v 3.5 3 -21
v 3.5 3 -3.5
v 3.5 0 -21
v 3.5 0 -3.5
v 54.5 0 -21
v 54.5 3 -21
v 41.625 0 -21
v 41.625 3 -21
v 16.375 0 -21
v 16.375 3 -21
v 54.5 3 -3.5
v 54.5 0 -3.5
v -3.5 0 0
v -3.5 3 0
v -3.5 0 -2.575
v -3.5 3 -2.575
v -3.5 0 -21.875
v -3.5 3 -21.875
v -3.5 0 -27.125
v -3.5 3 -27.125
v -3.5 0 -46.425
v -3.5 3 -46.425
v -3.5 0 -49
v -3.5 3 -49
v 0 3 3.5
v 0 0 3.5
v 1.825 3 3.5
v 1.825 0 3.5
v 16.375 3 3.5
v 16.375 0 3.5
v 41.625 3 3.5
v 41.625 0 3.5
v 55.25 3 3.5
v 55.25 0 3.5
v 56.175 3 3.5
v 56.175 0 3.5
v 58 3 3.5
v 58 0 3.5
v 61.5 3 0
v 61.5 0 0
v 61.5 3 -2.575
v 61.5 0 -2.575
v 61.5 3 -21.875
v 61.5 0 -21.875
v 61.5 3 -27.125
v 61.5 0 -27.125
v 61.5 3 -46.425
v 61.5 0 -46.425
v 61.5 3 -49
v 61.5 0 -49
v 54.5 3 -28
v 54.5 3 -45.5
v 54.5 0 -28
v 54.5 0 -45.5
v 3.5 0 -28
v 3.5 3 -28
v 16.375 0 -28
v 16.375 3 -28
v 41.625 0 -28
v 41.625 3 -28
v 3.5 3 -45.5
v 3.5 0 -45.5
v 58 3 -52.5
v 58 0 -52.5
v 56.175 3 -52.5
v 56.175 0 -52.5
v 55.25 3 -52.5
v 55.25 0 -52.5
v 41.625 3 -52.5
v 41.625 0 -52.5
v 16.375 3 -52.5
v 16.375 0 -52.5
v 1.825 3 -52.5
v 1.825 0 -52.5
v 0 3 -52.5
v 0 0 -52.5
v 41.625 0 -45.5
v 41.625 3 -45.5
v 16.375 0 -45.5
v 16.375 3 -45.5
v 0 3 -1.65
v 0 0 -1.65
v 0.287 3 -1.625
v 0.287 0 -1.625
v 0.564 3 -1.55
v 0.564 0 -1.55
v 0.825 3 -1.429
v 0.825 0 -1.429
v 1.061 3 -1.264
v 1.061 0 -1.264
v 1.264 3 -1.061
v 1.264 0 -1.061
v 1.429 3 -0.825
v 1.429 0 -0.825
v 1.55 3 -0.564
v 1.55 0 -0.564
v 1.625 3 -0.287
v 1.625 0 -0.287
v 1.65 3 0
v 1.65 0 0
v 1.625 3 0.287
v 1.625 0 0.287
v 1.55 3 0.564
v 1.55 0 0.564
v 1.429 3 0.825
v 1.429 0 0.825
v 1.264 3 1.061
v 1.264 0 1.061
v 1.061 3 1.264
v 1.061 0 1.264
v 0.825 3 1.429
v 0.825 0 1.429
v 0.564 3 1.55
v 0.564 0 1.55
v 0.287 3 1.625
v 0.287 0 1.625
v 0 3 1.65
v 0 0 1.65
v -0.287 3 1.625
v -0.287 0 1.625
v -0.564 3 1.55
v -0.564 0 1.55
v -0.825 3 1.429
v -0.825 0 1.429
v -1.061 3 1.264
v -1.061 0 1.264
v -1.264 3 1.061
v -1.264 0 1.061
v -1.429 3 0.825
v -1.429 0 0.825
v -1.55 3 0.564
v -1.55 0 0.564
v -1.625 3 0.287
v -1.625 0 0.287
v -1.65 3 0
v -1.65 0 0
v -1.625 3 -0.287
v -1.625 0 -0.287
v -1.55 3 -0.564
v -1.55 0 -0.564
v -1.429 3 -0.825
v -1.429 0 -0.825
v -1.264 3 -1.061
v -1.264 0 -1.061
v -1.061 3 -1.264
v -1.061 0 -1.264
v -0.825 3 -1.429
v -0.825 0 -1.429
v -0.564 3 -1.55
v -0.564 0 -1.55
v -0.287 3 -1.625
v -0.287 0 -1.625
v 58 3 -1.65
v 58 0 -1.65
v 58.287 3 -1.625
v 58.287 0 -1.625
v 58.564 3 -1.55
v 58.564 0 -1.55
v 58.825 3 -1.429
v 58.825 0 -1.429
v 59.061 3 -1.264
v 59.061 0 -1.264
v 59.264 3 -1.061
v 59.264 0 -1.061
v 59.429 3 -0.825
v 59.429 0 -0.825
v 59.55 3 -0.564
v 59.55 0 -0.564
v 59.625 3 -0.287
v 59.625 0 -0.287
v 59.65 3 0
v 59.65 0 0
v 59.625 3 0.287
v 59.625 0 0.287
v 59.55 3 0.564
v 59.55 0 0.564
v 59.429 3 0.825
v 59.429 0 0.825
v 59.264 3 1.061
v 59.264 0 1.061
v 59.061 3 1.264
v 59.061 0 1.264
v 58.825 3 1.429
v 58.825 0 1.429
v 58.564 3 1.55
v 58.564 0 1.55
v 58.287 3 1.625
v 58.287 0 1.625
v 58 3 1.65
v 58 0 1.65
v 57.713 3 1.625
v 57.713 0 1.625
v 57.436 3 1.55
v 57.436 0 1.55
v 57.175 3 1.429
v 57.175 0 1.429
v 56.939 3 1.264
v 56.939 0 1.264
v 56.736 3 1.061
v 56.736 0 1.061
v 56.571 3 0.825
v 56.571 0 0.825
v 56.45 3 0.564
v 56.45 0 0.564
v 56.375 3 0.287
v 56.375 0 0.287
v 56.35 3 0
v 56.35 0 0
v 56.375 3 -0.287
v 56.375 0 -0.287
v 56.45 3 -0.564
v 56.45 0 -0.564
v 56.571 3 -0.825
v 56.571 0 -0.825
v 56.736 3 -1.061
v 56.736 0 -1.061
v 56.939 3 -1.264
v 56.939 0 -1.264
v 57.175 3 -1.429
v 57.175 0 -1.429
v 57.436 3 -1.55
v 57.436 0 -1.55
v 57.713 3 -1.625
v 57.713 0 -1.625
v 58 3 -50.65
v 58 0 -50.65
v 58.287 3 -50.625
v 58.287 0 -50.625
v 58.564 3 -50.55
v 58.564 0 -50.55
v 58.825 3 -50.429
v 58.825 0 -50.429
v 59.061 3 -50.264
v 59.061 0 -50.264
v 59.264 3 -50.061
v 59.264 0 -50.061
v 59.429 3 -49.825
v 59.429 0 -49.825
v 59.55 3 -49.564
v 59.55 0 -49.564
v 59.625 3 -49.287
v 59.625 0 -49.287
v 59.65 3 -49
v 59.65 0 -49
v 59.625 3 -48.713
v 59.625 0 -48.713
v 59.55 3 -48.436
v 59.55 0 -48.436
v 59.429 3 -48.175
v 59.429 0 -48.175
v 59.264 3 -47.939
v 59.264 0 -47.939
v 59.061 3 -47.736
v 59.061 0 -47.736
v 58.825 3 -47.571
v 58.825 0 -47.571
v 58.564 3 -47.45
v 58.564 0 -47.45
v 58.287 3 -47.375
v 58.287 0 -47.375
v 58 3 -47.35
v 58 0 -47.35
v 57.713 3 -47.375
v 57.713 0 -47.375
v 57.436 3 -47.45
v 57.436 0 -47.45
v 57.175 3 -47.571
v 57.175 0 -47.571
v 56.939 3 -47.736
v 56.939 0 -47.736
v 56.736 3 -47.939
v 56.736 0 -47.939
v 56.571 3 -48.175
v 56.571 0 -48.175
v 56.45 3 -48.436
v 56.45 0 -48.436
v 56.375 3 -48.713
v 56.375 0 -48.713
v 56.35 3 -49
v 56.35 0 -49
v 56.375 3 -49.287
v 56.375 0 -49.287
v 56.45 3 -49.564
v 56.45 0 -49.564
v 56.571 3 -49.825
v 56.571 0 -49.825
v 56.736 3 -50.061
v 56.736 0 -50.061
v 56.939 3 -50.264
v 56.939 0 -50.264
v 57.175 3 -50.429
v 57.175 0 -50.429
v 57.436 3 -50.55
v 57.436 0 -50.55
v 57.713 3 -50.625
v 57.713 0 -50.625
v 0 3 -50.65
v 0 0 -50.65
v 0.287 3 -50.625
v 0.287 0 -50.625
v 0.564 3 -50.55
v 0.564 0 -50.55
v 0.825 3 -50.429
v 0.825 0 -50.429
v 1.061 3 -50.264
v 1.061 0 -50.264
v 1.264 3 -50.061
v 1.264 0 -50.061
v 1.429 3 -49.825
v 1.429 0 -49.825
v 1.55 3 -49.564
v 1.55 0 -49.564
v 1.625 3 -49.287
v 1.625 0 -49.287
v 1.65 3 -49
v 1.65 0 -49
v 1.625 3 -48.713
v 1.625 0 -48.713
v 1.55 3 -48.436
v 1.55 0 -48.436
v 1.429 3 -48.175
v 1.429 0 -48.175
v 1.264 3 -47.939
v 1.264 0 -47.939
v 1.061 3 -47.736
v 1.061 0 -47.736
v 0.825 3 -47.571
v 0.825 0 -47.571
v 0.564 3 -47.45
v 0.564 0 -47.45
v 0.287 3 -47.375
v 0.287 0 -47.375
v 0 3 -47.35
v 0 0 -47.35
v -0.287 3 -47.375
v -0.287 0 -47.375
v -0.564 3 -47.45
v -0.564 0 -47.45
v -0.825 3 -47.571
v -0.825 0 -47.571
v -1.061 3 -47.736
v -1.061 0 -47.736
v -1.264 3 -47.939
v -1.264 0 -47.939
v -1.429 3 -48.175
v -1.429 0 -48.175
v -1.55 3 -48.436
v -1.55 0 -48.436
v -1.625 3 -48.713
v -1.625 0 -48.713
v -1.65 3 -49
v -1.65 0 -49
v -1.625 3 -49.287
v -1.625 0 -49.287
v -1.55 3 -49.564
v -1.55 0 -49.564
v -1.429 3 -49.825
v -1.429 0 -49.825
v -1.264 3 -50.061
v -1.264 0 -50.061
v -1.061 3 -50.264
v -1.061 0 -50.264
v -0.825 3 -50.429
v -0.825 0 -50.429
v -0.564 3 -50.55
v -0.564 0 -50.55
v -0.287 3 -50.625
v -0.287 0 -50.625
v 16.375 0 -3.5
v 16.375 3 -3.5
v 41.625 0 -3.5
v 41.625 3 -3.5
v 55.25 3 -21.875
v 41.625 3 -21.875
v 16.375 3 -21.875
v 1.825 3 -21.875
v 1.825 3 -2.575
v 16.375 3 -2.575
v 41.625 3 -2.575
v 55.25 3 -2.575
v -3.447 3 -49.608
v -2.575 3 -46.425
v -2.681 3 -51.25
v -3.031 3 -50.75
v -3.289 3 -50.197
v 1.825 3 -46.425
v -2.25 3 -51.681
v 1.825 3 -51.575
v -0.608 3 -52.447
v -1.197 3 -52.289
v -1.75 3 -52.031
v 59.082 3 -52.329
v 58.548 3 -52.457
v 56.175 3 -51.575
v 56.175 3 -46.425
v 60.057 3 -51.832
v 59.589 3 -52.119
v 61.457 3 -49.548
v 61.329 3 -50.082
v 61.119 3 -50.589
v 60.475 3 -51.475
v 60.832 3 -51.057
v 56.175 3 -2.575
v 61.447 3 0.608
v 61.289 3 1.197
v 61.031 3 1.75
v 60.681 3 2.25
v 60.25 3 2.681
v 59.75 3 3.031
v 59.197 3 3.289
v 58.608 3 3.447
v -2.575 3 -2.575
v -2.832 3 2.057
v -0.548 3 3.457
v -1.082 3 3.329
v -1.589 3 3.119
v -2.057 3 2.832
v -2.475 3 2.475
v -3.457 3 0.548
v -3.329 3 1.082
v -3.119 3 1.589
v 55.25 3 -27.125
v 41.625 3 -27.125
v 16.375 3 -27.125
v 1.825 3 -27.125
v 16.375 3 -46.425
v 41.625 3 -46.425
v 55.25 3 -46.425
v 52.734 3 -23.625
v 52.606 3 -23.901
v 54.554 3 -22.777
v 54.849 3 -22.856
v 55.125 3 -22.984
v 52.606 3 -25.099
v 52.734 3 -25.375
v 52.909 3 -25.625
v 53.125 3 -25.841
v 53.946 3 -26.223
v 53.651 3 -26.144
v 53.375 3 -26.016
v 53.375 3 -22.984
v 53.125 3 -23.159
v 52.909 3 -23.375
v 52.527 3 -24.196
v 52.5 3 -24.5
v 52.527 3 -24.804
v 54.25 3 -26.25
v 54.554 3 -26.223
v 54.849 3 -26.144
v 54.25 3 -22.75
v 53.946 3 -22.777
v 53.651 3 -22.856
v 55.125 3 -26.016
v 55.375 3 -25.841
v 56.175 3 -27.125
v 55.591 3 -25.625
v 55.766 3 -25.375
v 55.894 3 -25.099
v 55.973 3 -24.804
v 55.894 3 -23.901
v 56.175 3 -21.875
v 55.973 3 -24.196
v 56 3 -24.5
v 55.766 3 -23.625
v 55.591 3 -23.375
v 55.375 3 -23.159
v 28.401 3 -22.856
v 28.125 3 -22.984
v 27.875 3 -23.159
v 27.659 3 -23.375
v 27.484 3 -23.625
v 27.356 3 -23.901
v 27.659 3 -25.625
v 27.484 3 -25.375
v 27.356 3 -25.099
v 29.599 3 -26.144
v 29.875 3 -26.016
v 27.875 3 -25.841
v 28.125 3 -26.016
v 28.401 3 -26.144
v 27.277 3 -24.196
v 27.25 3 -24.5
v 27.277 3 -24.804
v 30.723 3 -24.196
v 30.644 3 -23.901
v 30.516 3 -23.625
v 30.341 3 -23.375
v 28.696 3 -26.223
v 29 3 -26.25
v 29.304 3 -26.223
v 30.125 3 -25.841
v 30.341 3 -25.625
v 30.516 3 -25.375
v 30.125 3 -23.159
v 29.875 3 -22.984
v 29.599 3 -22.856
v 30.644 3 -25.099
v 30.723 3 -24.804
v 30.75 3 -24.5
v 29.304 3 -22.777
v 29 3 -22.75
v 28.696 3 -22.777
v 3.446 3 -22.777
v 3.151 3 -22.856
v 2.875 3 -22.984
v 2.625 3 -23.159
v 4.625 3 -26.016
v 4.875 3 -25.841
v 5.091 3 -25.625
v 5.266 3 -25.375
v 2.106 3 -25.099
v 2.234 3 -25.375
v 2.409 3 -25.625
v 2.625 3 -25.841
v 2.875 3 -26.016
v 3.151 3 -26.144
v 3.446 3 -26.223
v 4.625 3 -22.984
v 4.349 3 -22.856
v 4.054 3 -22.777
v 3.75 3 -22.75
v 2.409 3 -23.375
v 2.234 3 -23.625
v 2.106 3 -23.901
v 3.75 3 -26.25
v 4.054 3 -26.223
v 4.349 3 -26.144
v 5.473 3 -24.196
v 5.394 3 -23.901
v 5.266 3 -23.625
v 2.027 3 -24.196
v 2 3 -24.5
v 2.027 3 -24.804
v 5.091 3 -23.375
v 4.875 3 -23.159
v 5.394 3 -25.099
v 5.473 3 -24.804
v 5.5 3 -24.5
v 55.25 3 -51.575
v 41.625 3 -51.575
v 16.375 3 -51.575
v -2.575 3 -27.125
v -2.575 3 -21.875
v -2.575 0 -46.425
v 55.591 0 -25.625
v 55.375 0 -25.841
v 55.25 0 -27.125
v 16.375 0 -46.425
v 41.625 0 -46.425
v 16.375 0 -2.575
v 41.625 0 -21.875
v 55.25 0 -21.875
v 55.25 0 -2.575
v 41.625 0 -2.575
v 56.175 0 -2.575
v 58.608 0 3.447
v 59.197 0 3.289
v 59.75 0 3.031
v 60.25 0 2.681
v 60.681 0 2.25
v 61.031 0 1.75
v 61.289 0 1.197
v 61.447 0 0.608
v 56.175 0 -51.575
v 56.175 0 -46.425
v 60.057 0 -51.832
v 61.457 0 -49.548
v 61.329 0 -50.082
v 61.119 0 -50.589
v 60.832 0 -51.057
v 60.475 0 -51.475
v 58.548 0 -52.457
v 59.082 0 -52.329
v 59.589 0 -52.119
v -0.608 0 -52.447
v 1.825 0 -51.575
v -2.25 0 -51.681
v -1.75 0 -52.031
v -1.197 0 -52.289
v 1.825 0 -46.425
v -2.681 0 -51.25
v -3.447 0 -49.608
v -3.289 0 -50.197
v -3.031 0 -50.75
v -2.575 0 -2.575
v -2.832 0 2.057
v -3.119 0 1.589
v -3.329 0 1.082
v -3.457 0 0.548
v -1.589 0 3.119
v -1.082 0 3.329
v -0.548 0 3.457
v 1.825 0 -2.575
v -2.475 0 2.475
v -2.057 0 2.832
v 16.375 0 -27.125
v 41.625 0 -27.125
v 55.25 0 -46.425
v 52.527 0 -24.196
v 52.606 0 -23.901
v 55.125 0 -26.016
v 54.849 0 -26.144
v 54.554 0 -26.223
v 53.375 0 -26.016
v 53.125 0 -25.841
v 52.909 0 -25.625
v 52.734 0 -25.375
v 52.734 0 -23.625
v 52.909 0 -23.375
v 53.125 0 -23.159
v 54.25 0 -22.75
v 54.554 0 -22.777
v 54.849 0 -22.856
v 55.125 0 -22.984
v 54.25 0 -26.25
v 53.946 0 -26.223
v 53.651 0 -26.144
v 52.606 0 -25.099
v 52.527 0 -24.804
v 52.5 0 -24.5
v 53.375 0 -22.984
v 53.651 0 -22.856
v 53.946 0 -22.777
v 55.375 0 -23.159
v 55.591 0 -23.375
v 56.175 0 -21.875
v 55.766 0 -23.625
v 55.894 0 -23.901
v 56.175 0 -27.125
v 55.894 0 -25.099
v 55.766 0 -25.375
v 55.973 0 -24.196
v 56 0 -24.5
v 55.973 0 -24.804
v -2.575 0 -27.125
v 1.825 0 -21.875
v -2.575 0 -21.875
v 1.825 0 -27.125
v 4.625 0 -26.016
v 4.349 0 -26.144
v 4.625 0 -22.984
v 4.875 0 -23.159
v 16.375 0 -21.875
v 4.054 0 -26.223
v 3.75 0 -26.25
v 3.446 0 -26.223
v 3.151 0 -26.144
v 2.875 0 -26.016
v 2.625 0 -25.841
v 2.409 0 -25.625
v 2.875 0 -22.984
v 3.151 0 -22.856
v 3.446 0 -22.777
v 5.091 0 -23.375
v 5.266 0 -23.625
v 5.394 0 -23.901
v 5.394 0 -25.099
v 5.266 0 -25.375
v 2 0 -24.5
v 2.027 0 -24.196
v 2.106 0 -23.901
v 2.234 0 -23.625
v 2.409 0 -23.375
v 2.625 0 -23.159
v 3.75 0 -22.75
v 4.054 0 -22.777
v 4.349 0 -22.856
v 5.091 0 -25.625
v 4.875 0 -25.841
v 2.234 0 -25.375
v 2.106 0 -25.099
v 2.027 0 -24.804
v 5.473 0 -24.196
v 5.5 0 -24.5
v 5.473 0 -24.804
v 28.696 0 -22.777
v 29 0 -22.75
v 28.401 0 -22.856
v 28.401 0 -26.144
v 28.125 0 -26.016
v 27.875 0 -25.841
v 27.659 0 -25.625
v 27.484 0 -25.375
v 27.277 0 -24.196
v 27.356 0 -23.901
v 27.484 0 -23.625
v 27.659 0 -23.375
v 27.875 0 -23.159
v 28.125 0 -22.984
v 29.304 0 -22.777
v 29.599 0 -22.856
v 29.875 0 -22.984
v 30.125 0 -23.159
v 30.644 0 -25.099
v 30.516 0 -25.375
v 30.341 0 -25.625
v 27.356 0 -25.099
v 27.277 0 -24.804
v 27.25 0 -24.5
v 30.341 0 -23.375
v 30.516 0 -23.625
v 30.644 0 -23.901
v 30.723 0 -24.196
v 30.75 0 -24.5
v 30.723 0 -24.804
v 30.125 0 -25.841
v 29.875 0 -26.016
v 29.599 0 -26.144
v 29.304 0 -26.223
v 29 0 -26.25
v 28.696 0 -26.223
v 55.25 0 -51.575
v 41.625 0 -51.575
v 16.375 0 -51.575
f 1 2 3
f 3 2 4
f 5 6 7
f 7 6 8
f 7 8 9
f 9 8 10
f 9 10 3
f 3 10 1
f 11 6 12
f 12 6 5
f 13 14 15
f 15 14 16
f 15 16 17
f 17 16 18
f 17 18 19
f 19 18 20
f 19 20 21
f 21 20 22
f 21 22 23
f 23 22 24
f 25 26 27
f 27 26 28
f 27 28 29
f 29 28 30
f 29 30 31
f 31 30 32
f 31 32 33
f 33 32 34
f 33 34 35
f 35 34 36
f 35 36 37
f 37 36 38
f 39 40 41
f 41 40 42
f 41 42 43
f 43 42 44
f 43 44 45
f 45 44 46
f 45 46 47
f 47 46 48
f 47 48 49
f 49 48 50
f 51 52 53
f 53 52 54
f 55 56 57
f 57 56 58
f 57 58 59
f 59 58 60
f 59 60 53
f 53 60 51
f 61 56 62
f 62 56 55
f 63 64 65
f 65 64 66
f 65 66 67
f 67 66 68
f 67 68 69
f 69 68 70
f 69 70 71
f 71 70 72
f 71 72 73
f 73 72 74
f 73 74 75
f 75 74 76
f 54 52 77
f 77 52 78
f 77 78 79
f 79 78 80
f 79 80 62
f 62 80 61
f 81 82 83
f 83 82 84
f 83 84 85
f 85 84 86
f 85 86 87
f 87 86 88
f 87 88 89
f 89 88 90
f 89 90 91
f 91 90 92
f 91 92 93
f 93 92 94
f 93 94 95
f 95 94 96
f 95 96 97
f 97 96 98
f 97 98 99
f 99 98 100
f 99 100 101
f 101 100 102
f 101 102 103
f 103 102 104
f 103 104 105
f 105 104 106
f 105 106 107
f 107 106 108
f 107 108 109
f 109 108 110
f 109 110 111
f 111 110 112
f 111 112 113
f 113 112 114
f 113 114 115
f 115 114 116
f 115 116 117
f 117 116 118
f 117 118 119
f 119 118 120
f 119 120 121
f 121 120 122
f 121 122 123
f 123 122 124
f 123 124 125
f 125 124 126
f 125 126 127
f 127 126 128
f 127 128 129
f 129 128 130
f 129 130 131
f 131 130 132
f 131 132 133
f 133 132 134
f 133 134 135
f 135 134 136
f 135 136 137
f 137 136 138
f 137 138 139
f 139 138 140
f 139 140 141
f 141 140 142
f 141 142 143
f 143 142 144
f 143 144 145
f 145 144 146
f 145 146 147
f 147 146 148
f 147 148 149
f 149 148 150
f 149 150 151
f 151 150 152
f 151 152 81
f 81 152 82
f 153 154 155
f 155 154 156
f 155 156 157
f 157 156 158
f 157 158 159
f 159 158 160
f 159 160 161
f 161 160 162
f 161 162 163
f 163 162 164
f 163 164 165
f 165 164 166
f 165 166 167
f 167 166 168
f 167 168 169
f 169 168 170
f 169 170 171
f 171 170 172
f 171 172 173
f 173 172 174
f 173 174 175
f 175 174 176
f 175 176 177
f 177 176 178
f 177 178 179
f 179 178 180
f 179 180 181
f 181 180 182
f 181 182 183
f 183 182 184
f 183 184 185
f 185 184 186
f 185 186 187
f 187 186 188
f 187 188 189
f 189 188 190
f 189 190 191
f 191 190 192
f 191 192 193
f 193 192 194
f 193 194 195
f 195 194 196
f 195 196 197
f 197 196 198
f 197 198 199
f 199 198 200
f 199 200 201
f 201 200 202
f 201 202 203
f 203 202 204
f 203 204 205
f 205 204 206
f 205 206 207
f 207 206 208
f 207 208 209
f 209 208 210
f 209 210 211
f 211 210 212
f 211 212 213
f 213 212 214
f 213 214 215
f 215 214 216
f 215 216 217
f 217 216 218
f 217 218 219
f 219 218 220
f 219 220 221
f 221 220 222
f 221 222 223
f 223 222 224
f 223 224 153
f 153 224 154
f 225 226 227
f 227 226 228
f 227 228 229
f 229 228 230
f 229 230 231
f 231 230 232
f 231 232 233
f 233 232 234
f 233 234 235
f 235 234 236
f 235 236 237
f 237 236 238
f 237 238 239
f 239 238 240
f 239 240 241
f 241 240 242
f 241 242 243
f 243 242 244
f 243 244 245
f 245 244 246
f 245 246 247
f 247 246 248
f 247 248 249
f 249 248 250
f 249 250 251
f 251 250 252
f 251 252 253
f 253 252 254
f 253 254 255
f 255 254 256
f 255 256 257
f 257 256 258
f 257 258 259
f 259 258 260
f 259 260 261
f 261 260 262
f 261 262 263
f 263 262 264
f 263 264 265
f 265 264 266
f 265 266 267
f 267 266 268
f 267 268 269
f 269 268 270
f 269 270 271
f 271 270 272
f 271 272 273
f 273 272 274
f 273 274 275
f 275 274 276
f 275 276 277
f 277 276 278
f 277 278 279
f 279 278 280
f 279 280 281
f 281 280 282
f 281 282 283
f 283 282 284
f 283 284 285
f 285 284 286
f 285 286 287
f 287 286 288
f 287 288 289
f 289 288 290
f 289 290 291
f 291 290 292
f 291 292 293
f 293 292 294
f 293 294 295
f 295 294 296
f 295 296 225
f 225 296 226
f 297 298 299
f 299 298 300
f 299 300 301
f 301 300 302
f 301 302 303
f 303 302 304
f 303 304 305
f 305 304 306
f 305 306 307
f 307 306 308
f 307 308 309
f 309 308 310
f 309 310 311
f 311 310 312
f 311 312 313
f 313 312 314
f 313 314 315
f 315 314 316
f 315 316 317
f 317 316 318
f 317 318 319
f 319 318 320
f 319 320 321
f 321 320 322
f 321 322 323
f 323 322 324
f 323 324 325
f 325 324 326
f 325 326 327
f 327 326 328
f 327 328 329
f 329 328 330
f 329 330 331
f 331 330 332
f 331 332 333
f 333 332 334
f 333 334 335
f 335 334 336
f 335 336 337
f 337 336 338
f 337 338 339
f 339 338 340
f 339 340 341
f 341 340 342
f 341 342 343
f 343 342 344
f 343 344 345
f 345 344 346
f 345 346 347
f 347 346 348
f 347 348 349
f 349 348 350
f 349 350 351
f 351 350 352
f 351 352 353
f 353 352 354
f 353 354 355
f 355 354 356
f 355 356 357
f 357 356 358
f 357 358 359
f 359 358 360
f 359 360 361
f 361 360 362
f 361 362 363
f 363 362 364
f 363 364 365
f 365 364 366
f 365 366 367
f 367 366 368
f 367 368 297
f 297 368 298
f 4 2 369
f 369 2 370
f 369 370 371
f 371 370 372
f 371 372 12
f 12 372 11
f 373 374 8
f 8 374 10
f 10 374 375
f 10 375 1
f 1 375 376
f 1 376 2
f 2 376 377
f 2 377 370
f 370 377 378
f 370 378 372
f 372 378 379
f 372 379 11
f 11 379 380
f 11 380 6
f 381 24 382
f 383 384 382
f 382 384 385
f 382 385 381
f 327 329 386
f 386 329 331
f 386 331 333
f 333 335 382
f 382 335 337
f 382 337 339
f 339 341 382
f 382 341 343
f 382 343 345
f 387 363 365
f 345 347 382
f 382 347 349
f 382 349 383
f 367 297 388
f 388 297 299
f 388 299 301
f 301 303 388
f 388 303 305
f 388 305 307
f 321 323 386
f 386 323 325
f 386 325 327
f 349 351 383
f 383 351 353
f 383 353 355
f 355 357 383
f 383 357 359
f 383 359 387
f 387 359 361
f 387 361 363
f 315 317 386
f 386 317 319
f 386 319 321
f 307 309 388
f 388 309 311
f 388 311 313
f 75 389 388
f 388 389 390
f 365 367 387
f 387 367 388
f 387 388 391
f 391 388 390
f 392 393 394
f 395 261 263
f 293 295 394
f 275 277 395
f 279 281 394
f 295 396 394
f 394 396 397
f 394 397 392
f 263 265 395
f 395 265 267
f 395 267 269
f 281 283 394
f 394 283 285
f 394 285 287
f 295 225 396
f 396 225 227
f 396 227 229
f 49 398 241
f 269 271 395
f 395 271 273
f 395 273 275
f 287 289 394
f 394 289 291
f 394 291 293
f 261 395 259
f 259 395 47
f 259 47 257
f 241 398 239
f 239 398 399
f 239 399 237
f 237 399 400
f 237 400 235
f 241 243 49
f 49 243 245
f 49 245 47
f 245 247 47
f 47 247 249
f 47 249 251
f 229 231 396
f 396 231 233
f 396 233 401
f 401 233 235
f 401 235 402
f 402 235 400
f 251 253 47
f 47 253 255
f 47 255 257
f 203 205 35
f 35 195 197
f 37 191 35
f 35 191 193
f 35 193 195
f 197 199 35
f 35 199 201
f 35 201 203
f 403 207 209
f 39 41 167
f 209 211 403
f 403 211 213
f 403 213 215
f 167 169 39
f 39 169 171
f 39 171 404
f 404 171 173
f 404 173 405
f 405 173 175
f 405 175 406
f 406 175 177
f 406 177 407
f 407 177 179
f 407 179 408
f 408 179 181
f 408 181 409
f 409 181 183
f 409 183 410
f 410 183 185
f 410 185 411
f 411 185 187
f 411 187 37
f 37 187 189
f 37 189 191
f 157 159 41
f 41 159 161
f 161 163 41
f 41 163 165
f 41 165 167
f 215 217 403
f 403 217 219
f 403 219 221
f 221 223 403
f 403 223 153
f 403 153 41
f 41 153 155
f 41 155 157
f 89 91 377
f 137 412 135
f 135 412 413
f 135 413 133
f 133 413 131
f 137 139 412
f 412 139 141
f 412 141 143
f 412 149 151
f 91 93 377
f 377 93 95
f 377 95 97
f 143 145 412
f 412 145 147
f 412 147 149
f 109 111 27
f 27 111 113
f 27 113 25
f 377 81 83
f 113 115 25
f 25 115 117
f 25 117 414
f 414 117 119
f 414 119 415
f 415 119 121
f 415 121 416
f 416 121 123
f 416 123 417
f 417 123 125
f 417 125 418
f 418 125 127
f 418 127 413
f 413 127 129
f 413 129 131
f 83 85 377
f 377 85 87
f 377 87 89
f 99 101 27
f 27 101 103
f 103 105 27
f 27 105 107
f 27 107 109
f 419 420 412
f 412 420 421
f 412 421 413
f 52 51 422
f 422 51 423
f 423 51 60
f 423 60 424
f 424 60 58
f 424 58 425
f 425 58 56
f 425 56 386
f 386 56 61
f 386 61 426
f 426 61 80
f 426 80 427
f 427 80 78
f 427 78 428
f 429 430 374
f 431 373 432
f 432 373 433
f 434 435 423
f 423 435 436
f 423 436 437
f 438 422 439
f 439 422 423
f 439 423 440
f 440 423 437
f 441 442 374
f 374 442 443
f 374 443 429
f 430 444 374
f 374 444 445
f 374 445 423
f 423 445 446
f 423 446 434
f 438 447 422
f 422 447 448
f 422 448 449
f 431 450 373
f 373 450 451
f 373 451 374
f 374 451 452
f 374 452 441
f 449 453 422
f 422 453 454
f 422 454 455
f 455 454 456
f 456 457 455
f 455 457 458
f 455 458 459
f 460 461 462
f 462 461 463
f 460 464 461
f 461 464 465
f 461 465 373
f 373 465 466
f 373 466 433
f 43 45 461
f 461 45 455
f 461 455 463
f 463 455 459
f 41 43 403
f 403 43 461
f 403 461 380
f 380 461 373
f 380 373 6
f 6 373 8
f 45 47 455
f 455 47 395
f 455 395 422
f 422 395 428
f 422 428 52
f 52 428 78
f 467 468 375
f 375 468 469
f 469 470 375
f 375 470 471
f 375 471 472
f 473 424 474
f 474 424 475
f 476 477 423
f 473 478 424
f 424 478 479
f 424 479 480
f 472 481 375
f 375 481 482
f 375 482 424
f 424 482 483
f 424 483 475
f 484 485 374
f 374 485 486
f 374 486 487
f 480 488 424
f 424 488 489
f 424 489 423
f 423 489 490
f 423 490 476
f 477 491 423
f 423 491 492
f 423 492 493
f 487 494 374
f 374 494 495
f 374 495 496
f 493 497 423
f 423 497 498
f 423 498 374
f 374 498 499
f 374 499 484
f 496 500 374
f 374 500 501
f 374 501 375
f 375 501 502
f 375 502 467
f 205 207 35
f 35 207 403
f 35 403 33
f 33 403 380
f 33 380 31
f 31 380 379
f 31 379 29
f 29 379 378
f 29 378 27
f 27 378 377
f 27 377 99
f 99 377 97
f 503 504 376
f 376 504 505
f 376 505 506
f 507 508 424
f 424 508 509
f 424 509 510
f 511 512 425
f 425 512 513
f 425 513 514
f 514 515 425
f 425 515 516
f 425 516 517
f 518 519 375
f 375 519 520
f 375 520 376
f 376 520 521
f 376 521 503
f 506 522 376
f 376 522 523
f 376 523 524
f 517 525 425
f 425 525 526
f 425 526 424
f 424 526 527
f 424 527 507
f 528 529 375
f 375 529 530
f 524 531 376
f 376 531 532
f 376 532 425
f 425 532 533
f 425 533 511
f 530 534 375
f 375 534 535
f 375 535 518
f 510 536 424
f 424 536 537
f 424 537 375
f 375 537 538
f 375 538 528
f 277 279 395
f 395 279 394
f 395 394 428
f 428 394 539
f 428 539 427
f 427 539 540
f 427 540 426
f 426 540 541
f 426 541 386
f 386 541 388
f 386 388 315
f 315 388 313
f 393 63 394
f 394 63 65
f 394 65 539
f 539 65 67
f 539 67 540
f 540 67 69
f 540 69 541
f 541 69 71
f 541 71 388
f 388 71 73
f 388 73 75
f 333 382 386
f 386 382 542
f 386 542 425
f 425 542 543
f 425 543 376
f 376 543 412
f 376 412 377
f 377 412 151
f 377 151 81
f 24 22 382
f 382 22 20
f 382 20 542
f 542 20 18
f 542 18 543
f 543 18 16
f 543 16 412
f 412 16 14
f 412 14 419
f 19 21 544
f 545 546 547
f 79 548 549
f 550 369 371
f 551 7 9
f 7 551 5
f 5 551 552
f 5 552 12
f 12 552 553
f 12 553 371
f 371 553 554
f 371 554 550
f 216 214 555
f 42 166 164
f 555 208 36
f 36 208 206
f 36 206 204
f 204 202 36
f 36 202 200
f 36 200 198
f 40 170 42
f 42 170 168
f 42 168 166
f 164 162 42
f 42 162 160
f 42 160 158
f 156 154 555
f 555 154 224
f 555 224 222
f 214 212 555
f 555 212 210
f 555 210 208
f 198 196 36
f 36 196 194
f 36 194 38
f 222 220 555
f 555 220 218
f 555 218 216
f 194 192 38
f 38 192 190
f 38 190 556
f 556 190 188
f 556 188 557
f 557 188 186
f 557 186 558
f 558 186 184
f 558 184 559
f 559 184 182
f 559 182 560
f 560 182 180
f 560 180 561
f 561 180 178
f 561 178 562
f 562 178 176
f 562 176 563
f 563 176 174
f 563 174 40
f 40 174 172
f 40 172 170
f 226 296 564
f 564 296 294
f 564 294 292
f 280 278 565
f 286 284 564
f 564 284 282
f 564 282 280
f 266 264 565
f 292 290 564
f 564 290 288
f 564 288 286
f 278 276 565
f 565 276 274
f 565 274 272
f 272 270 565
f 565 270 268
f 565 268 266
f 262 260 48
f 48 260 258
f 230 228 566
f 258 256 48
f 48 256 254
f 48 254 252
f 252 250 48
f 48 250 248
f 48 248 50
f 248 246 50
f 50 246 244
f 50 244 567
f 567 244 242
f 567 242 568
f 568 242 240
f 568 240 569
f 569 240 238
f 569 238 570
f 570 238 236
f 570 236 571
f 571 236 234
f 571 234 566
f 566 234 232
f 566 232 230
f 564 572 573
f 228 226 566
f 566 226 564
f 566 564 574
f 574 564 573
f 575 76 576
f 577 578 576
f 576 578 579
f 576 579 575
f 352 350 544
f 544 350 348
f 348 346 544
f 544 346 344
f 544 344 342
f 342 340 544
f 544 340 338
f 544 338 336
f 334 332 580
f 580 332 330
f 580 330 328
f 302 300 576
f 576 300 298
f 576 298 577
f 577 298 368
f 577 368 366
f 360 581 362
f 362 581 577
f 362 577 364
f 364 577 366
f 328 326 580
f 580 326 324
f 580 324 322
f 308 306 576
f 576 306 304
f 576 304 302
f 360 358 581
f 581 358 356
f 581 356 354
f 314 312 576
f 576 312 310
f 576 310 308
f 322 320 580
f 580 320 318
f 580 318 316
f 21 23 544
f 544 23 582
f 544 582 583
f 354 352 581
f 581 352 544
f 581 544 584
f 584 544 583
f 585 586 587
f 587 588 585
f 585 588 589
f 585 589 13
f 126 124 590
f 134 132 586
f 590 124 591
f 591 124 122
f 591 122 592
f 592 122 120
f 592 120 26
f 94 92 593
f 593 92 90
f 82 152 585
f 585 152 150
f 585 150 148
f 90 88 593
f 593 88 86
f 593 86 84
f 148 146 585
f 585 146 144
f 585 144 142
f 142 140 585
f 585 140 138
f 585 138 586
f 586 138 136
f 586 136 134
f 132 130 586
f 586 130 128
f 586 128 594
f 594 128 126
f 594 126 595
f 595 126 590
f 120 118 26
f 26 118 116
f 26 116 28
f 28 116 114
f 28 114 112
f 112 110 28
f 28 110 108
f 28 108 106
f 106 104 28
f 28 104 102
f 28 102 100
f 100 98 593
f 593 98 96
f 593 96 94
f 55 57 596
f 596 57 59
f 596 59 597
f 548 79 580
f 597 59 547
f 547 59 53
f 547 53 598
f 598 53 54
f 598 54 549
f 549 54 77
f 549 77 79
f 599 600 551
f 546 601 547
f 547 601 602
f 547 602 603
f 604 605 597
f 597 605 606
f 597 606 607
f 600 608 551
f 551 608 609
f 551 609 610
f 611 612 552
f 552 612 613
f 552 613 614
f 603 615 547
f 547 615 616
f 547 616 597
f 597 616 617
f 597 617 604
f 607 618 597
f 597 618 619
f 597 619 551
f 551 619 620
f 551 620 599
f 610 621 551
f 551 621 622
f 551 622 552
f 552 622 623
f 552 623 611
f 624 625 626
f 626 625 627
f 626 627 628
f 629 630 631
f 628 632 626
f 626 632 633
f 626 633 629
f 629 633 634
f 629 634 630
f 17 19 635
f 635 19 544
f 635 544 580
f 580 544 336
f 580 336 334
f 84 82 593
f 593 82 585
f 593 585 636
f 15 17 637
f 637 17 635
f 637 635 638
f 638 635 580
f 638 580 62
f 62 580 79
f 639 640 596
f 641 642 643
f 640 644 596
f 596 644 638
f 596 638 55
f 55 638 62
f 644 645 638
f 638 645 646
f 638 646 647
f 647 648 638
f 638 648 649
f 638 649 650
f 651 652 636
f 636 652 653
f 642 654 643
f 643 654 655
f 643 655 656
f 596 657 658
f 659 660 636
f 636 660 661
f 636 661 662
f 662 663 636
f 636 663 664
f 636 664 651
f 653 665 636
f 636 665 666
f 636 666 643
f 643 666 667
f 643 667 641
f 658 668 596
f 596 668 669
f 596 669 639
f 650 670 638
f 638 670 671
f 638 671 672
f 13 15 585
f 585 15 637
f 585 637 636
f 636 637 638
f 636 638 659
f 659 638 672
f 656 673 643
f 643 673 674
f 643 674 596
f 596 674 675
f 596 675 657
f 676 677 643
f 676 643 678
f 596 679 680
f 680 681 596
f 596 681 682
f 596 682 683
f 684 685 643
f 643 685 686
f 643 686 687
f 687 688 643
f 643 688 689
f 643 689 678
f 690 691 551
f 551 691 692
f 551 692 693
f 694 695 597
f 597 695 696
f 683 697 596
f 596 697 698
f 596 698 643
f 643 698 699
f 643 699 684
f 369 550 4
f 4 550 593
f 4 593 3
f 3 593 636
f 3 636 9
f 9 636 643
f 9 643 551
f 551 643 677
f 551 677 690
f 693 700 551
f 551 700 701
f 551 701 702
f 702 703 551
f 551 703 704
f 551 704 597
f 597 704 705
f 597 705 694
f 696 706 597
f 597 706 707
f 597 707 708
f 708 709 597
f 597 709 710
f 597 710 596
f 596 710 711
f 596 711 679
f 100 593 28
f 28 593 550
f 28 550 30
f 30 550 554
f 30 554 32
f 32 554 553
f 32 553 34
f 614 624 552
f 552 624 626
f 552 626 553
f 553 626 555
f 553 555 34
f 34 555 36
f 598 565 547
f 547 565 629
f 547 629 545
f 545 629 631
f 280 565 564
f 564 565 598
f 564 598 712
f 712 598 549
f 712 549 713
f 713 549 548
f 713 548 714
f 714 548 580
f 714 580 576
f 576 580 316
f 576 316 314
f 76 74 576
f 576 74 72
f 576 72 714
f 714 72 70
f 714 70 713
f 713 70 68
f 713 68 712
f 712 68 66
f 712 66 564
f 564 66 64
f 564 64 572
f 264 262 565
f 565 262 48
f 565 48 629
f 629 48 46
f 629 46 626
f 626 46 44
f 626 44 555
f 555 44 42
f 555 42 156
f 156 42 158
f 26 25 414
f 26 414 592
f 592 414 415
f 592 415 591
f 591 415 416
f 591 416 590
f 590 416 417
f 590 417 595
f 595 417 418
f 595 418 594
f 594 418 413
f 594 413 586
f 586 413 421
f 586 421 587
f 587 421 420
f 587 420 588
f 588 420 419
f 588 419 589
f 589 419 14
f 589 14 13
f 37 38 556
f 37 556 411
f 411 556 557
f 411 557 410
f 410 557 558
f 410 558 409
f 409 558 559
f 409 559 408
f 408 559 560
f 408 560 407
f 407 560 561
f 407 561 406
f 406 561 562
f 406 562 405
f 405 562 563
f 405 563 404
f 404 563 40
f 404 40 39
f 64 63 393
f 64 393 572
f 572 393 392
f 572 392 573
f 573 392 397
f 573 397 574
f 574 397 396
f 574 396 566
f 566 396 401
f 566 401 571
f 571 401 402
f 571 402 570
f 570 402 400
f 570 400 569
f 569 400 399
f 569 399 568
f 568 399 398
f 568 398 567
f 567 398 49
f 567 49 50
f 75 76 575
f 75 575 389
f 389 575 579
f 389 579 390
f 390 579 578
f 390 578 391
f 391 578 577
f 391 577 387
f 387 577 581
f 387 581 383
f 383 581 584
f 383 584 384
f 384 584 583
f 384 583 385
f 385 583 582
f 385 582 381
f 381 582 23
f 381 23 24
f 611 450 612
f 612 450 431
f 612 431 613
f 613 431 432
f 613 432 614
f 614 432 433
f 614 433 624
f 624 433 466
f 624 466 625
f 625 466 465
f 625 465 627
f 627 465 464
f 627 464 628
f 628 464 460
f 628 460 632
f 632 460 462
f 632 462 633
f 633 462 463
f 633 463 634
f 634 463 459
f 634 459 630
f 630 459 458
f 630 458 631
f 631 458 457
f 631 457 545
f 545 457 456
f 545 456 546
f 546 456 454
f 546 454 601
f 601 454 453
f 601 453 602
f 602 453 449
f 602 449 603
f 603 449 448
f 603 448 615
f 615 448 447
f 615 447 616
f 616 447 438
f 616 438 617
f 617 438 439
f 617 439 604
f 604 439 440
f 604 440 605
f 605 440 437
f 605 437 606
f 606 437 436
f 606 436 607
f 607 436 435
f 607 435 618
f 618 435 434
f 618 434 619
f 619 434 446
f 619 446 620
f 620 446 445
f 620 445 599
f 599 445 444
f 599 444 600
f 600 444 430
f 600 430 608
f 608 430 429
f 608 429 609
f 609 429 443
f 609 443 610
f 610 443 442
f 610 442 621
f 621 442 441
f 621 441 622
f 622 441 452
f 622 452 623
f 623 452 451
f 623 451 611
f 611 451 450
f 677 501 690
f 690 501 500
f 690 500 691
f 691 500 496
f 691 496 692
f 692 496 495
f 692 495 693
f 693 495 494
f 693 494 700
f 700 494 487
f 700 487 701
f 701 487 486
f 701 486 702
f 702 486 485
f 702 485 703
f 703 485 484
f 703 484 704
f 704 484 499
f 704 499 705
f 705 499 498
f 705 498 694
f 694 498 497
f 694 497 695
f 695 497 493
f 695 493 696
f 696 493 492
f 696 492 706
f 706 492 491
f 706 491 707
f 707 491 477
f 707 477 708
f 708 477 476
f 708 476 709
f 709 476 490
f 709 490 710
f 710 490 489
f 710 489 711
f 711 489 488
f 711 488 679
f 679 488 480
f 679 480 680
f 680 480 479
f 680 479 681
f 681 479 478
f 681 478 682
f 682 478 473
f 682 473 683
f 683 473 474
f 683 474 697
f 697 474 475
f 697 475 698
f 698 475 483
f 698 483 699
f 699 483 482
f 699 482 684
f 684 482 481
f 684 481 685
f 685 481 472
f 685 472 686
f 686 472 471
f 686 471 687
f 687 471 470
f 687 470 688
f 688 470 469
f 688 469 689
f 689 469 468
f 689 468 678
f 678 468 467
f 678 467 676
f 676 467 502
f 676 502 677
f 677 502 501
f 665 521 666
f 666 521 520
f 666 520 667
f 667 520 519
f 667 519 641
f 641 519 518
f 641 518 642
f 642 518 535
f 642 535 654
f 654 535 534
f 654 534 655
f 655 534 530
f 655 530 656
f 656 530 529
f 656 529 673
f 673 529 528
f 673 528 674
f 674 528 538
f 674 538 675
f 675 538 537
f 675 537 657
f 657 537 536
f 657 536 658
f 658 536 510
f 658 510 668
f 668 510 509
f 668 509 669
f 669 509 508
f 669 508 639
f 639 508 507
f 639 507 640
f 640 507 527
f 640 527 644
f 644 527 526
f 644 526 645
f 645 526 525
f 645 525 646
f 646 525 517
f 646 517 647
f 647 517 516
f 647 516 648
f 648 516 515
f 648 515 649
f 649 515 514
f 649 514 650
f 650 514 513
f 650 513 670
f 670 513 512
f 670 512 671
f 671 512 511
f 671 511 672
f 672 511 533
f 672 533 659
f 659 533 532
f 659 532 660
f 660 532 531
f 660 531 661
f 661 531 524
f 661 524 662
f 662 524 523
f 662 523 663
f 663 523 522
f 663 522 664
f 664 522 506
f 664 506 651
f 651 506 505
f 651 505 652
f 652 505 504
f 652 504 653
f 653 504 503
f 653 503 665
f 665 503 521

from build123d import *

# Parameters (mm, degrees)
SKETCH1_W           = 65
SKETCH1_H           = 56
SKETCH1_R           = 1.65
SKETCH1_W_2         = 51
SKETCH1_H_2         = 17.5
BOSS_EXTRUDE1_DEPTH = 3
FILLET1_R           = 3.5
CUT_EXTRUDE1_REACH  = 82.917
SKETCH2_R           = 1.75


with BuildPart() as part:
    # Sketch1 → Boss-Extrude1 (new body)
    with BuildSketch(Plane(origin=(0, 0, 0), x_dir=(1, 0, 0), z_dir=(0, 1, 0))):
        with Locations((29, 24.5)):
            Rectangle(SKETCH1_W, SKETCH1_H)
        with Locations(Location((0, 49, 0), (0, 0, 270))):
            Circle(SKETCH1_R, mode=Mode.SUBTRACT)
        with Locations(Location((58, 49, 0), (0, 0, 270))):
            Circle(SKETCH1_R, mode=Mode.SUBTRACT)
        with Locations(Location((58, 0, 0), (0, 0, 270))):
            Circle(SKETCH1_R, mode=Mode.SUBTRACT)
        with Locations(Location((0, 0, 0), (0, 0, 270))):
            Circle(SKETCH1_R, mode=Mode.SUBTRACT)
        with Locations((29, 36.75)):
            Rectangle(SKETCH1_W_2, SKETCH1_H_2, mode=Mode.SUBTRACT)
        with Locations((29, 12.25)):
            Rectangle(SKETCH1_W_2, SKETCH1_H_2, mode=Mode.SUBTRACT)
    extrude(amount=BOSS_EXTRUDE1_DEPTH)

    # Fillet1
    fillet1_edges = [part.edges().sort_by_distance(p)[0] for p in [
        (-3.5, 1.5, -52.5),
        (61.5, 1.5, -52.5),
        (61.5, 1.5, 3.5),
        (-3.5, 1.5, 3.5),
    ]]
    fillet(fillet1_edges, radius=FILLET1_R)

    # Sketch2 → Cut-Extrude1 (cut, up to next)
    with BuildSketch(Plane(origin=(0, 3, 0), x_dir=(1, 0, 0), z_dir=(0, 1, 0)), mode=Mode.PRIVATE) as cut_extrude1_sk1:
        with Locations(Location((3.75, 24.5, 0), (0, 0, 270))):
            Circle(SKETCH2_R)
    cut_extrude1_tool1 = extrude(cut_extrude1_sk1.sketch, amount=-CUT_EXTRUDE1_REACH, mode=Mode.PRIVATE) & part.part
    # Sketch2 → Cut-Extrude1 (cut, up to next)
    with BuildSketch(Plane(origin=(0, 3, 0), x_dir=(1, 0, 0), z_dir=(0, 1, 0)), mode=Mode.PRIVATE) as cut_extrude1_sk2:
        with Locations(Location((29, 24.5, 0), (0, 0, 270))):
            Circle(SKETCH2_R)
    cut_extrude1_tool2 = extrude(cut_extrude1_sk2.sketch, amount=-CUT_EXTRUDE1_REACH, mode=Mode.PRIVATE) & part.part
    # Sketch2 → Cut-Extrude1 (cut, up to next)
    with BuildSketch(Plane(origin=(0, 3, 0), x_dir=(1, 0, 0), z_dir=(0, 1, 0)), mode=Mode.PRIVATE) as cut_extrude1_sk3:
        with Locations(Location((54.25, 24.5, 0), (0, 0, 270))):
            Circle(SKETCH2_R)
    cut_extrude1_tool3 = extrude(cut_extrude1_sk3.sketch, amount=-CUT_EXTRUDE1_REACH, mode=Mode.PRIVATE) & part.part
    add(cut_extrude1_tool1.solids().sort_by_distance((3.75, 3, -24.5))[0], mode=Mode.SUBTRACT)
    add(cut_extrude1_tool2.solids().sort_by_distance((29, 3, -24.5))[0], mode=Mode.SUBTRACT)
    add(cut_extrude1_tool3.solids().sort_by_distance((54.25, 3, -24.5))[0], mode=Mode.SUBTRACT)


solid = part.part
